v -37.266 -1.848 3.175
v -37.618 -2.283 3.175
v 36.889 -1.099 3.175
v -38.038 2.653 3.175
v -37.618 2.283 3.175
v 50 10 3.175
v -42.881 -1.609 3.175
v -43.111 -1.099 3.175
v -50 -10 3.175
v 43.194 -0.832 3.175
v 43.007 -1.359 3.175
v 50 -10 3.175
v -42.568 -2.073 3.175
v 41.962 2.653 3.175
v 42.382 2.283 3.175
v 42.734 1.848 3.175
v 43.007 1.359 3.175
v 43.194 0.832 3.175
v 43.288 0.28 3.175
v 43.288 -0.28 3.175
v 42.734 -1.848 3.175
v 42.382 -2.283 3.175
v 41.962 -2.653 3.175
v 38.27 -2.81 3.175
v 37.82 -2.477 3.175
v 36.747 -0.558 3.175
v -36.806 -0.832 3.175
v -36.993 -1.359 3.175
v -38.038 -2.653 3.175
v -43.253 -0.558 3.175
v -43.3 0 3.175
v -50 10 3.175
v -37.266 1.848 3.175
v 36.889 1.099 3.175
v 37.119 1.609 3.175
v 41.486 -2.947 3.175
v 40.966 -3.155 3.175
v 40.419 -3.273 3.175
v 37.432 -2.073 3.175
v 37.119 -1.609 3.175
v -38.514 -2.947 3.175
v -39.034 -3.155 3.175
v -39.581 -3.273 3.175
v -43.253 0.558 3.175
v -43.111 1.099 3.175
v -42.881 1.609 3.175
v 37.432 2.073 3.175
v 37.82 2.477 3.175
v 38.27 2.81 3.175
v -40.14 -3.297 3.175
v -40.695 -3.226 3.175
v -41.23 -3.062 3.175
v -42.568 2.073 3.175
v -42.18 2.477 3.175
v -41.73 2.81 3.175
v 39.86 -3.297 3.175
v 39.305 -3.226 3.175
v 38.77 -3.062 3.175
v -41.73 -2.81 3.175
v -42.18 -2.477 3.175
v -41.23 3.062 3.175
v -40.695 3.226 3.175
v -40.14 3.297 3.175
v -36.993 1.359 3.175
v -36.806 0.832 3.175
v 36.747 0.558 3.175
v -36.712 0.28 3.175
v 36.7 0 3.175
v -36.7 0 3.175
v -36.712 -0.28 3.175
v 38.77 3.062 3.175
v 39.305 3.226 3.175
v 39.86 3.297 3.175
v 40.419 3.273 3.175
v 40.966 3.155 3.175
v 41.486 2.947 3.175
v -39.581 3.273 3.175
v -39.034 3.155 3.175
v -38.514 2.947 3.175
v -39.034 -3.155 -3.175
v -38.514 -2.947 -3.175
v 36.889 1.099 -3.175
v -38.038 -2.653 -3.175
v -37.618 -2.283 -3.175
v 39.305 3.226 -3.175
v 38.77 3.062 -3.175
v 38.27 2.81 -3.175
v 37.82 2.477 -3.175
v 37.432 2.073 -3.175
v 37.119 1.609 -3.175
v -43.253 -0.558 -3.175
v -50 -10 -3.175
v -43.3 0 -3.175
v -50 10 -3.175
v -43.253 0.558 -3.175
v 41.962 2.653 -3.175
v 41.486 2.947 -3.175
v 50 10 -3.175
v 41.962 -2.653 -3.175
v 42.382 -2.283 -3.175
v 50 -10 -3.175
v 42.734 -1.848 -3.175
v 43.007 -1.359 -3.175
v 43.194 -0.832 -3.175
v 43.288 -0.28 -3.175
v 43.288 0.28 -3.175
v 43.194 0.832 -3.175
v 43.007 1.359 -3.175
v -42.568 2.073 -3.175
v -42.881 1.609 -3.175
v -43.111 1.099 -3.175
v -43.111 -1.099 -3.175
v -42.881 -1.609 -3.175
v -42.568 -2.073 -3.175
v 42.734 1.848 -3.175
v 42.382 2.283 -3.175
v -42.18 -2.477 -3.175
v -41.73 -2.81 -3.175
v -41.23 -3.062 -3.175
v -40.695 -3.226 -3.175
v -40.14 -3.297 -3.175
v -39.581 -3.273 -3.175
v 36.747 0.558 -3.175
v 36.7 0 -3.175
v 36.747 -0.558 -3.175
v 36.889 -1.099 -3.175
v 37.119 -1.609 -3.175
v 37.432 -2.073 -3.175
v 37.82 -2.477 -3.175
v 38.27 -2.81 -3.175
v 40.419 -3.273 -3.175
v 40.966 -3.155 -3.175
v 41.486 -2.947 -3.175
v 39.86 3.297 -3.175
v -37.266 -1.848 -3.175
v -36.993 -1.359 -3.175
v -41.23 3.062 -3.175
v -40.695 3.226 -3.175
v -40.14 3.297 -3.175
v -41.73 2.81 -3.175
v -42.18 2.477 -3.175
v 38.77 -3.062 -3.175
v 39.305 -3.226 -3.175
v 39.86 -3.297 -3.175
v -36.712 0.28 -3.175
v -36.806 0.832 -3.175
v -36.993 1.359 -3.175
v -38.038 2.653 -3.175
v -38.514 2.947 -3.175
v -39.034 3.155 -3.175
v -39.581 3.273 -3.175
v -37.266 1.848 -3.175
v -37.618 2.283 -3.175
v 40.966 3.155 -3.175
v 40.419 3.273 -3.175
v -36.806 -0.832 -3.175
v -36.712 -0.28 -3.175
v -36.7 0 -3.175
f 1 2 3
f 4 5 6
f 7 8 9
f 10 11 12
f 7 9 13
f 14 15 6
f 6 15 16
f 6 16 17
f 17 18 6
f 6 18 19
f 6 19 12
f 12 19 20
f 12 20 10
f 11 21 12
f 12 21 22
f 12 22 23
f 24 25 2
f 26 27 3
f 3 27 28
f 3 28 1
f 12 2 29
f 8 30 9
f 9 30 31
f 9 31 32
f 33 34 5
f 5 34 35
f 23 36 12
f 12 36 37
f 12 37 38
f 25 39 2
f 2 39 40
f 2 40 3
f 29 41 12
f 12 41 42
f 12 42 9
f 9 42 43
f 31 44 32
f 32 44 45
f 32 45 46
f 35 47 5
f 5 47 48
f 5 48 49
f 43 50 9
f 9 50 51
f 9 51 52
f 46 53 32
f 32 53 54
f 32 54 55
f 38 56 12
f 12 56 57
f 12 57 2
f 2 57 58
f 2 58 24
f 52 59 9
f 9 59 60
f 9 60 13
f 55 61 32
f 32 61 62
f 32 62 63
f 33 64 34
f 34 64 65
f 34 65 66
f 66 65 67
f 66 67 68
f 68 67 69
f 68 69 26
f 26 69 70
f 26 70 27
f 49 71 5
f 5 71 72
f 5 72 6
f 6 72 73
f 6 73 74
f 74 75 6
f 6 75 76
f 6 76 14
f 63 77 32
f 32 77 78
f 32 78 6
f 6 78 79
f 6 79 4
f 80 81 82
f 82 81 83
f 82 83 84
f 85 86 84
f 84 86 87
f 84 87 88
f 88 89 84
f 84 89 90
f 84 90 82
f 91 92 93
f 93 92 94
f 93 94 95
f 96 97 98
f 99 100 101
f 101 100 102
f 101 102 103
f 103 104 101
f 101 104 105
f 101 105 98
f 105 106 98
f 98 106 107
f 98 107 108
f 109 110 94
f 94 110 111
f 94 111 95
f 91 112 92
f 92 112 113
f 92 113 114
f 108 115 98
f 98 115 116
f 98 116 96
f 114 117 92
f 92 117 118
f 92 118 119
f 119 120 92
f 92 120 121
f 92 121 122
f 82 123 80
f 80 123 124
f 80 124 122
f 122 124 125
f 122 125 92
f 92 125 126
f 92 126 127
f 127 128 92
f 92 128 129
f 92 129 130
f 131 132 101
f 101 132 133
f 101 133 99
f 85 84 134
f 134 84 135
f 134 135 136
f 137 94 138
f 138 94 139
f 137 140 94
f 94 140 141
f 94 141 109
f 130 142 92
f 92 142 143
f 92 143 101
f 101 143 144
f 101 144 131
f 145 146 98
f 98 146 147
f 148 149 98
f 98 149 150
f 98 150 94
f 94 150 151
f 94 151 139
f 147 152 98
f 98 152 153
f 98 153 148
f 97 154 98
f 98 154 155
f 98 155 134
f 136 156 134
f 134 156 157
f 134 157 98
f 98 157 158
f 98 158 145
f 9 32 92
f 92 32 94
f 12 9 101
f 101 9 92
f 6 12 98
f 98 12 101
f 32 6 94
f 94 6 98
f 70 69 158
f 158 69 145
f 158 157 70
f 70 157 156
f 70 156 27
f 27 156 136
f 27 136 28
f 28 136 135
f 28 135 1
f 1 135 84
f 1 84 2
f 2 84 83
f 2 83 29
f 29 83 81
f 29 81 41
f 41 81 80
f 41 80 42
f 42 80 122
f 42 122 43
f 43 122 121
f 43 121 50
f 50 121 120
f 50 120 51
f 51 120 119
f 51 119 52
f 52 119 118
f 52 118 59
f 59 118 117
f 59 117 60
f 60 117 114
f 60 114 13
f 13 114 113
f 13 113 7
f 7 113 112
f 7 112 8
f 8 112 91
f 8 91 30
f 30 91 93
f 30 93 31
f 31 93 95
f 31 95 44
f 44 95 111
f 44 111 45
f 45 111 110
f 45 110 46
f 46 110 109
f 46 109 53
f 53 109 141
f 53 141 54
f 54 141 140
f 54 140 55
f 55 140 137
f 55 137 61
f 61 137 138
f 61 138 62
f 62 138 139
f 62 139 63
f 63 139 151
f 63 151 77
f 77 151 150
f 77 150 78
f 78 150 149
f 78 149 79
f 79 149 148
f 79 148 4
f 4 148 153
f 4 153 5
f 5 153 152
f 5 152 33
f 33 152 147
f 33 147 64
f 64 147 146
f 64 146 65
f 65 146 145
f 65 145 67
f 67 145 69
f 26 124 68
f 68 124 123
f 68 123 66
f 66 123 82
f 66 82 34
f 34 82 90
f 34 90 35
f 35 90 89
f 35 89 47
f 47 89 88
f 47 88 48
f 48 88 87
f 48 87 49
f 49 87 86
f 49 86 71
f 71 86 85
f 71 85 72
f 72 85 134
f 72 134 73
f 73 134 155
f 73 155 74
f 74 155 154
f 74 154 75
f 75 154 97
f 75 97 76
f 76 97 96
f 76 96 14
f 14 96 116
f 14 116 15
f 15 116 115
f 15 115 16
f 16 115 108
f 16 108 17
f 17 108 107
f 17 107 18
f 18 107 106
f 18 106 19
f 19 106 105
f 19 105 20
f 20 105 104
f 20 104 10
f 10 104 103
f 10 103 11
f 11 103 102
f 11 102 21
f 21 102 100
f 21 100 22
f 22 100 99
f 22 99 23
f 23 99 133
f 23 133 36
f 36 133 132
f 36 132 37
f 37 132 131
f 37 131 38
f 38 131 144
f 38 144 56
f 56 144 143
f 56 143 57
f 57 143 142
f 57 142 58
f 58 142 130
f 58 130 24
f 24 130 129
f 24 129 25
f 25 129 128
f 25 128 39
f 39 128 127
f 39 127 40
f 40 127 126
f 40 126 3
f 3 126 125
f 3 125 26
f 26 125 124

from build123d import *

# Parameters (mm, degrees)
SKETCH1_W           = 100
SKETCH1_H           = 20
SKETCH1_R           = 3.3
BOSS_EXTRUDE1_DEPTH = 3.175


with BuildPart() as part:
    # Sketch1 → Boss-Extrude1 (new, symmetric)
    with BuildSketch(Plane.XY):
        Rectangle(SKETCH1_W, SKETCH1_H)
        with Locations((-40, 0)):
            Circle(SKETCH1_R, mode=Mode.SUBTRACT)
        with Locations(Location((40, 0, 0), (0, 0, 180))):
            Circle(SKETCH1_R, mode=Mode.SUBTRACT)
    extrude(amount=BOSS_EXTRUDE1_DEPTH, both=True)


solid = part.part
